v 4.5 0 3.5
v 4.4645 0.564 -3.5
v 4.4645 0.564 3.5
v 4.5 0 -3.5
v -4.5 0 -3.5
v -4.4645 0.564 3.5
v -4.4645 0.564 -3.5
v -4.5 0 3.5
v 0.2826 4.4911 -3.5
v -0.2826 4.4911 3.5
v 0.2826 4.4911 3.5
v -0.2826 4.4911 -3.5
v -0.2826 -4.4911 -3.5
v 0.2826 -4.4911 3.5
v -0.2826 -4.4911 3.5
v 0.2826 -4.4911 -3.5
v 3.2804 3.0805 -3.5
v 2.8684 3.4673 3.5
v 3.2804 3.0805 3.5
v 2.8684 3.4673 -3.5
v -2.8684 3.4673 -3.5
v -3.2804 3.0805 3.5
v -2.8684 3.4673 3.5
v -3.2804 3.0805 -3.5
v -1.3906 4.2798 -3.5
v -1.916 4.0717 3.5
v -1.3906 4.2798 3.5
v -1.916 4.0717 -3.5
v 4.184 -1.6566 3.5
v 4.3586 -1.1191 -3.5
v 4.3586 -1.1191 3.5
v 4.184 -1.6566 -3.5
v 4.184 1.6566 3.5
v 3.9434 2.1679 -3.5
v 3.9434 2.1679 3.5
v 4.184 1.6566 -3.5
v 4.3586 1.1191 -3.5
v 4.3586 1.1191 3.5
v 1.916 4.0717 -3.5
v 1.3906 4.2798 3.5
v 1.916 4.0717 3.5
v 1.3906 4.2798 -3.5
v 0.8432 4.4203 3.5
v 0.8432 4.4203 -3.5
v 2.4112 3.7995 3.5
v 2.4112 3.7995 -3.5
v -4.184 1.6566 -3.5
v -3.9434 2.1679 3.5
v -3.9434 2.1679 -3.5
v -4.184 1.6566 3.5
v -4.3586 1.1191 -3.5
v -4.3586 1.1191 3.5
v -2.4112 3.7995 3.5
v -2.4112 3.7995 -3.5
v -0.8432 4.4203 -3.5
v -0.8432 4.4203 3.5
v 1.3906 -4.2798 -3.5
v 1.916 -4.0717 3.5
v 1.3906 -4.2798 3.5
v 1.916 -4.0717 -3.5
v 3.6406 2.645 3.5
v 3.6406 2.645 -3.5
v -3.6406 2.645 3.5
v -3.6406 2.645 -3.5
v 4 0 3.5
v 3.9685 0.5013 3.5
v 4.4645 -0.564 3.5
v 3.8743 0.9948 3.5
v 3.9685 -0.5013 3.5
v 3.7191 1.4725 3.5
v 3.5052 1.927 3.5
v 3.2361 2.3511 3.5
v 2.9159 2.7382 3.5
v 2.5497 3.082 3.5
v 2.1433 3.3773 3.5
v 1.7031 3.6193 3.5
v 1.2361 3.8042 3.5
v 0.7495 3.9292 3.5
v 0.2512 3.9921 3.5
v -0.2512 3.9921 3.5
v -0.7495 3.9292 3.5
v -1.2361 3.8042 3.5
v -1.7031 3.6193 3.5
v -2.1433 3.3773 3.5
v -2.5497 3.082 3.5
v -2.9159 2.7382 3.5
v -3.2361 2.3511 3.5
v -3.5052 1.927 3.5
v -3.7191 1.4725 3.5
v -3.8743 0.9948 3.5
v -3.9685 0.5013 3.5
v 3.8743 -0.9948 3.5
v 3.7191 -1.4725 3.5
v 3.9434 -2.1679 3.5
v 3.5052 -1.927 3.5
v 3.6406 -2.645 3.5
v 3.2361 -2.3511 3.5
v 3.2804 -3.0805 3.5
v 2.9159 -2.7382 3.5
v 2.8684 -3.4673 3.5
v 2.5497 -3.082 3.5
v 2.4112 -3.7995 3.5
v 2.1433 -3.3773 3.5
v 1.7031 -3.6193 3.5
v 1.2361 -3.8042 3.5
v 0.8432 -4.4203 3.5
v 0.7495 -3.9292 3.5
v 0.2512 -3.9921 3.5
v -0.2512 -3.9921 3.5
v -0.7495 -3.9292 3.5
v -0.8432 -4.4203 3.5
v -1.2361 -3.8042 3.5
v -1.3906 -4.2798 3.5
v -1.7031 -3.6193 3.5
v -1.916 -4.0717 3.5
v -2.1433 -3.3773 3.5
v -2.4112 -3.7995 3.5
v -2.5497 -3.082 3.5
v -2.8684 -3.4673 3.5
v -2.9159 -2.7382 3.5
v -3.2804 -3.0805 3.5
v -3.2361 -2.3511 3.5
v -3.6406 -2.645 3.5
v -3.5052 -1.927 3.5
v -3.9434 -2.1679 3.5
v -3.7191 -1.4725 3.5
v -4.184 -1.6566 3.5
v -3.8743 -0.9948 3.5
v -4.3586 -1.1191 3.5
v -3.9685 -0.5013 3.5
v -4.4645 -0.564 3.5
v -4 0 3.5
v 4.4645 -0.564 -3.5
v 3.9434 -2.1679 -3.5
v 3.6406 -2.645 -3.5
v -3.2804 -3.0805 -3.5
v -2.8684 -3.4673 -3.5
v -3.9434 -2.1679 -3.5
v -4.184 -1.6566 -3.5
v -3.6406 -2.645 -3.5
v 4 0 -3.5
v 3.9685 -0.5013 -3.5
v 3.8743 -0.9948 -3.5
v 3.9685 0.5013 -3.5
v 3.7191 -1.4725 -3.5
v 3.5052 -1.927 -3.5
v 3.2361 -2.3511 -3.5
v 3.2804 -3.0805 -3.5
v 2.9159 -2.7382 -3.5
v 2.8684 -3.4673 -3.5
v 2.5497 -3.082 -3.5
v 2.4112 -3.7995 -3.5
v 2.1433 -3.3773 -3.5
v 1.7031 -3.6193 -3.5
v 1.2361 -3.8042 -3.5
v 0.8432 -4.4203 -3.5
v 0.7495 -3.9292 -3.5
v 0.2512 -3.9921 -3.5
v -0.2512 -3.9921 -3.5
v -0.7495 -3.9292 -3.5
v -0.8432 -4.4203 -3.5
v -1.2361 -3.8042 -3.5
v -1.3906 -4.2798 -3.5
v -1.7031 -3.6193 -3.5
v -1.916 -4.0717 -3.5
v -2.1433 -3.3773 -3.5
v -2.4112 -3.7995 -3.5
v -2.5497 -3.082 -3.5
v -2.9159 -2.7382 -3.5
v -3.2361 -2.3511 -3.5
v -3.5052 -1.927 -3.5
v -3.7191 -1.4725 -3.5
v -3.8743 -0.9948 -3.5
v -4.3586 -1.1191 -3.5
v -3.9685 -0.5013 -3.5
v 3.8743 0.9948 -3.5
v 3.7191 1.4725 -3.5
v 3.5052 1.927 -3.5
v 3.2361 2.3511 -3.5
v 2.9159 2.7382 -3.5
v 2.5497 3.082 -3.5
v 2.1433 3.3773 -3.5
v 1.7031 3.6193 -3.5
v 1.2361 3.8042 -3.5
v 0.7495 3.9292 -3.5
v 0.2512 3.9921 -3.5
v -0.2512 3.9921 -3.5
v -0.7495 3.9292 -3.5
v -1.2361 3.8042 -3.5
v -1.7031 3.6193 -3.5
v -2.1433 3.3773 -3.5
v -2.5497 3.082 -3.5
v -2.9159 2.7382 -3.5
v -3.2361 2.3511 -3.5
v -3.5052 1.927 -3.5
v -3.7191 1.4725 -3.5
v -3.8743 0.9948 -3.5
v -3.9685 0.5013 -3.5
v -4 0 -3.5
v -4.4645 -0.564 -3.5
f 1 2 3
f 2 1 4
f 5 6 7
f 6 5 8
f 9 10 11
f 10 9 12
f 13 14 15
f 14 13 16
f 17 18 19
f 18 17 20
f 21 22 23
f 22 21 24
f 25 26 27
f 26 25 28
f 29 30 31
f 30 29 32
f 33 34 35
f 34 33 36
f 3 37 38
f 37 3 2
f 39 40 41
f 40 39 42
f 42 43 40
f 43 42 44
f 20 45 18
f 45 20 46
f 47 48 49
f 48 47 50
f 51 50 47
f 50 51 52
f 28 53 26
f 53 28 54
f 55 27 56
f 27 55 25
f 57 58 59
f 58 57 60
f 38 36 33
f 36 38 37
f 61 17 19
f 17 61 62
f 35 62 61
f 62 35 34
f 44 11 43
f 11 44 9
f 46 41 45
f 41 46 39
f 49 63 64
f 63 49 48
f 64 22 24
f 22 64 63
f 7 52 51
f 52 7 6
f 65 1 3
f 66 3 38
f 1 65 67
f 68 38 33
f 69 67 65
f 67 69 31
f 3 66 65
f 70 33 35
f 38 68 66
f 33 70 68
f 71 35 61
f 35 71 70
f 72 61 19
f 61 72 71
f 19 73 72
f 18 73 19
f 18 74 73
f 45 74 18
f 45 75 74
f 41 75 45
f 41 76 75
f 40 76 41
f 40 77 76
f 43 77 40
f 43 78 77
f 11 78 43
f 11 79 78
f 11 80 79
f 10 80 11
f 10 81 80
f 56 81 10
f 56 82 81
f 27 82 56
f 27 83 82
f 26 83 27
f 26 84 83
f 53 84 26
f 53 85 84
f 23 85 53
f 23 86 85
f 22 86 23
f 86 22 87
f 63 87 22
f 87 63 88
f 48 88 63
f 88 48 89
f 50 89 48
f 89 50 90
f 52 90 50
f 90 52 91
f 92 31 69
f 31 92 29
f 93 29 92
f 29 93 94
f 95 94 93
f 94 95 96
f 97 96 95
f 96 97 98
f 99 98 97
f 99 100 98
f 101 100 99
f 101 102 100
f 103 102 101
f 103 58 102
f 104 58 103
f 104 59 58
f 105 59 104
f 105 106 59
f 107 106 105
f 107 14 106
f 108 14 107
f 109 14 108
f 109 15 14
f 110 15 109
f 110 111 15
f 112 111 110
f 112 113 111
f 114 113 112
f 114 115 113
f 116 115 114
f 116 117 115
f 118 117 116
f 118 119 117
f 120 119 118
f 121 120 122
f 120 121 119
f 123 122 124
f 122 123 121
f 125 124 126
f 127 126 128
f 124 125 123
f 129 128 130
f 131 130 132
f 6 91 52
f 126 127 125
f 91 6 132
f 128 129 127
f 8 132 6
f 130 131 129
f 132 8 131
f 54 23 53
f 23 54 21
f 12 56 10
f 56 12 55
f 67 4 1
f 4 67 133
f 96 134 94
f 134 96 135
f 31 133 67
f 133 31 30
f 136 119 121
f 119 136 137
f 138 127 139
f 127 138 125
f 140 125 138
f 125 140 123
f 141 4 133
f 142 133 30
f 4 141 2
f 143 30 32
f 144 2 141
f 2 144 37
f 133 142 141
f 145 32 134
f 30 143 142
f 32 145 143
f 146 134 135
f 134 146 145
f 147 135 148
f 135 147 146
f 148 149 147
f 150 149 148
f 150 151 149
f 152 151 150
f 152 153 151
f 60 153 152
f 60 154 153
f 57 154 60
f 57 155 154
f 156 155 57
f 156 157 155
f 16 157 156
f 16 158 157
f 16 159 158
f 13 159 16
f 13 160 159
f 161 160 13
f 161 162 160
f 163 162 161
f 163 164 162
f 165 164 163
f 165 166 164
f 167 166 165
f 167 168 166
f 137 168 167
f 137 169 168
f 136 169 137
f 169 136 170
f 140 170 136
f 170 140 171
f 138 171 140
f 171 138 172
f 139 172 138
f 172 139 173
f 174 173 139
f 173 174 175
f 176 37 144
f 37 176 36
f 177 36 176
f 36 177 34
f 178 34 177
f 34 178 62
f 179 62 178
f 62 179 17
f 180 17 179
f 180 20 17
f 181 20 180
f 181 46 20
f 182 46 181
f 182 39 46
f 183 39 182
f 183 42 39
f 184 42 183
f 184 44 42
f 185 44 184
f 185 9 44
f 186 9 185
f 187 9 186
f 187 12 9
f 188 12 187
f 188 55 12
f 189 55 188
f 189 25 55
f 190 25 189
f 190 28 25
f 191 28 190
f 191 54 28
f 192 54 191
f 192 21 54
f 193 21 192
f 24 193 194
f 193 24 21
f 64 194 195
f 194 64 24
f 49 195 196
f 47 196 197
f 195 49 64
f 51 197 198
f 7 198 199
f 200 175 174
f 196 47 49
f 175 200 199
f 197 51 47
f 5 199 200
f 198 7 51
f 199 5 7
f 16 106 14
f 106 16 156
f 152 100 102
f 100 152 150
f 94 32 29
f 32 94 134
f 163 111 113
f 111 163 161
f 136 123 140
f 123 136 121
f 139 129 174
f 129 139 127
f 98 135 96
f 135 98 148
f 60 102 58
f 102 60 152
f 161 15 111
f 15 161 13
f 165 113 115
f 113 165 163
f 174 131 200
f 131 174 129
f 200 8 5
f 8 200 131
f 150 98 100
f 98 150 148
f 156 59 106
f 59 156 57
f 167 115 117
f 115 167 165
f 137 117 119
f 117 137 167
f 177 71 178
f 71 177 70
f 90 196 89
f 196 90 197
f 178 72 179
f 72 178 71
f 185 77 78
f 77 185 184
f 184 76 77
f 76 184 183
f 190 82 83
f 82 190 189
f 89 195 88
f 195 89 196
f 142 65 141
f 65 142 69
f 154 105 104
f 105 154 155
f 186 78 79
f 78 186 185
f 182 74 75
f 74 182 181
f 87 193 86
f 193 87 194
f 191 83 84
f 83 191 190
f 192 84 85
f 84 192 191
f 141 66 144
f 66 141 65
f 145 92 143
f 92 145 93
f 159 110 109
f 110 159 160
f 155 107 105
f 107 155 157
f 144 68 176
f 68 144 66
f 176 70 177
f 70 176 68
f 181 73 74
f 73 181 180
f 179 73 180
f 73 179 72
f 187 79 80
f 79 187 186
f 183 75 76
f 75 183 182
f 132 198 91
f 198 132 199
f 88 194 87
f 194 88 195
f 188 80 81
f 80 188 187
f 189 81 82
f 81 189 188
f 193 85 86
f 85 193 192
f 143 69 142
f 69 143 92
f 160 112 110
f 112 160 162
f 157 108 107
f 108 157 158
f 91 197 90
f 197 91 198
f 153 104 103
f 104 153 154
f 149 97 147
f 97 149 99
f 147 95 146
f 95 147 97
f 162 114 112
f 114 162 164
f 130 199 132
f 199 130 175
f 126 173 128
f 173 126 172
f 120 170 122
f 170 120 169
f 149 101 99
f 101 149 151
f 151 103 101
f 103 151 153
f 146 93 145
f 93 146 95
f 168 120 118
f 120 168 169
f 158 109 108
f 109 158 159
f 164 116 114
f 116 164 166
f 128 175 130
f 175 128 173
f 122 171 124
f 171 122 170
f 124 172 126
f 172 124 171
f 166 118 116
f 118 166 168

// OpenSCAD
$fn = 50;


difference() {
	union() {
		translate(v = [0, 0, -3.5000000000]) {
			cylinder(h = 7, r = 4.5000000000);
		}
	}
	union() {
		translate(v = [0, 0, -100.0000000000]) {
			cylinder(h = 200, r = 4);
		}
	}
}
